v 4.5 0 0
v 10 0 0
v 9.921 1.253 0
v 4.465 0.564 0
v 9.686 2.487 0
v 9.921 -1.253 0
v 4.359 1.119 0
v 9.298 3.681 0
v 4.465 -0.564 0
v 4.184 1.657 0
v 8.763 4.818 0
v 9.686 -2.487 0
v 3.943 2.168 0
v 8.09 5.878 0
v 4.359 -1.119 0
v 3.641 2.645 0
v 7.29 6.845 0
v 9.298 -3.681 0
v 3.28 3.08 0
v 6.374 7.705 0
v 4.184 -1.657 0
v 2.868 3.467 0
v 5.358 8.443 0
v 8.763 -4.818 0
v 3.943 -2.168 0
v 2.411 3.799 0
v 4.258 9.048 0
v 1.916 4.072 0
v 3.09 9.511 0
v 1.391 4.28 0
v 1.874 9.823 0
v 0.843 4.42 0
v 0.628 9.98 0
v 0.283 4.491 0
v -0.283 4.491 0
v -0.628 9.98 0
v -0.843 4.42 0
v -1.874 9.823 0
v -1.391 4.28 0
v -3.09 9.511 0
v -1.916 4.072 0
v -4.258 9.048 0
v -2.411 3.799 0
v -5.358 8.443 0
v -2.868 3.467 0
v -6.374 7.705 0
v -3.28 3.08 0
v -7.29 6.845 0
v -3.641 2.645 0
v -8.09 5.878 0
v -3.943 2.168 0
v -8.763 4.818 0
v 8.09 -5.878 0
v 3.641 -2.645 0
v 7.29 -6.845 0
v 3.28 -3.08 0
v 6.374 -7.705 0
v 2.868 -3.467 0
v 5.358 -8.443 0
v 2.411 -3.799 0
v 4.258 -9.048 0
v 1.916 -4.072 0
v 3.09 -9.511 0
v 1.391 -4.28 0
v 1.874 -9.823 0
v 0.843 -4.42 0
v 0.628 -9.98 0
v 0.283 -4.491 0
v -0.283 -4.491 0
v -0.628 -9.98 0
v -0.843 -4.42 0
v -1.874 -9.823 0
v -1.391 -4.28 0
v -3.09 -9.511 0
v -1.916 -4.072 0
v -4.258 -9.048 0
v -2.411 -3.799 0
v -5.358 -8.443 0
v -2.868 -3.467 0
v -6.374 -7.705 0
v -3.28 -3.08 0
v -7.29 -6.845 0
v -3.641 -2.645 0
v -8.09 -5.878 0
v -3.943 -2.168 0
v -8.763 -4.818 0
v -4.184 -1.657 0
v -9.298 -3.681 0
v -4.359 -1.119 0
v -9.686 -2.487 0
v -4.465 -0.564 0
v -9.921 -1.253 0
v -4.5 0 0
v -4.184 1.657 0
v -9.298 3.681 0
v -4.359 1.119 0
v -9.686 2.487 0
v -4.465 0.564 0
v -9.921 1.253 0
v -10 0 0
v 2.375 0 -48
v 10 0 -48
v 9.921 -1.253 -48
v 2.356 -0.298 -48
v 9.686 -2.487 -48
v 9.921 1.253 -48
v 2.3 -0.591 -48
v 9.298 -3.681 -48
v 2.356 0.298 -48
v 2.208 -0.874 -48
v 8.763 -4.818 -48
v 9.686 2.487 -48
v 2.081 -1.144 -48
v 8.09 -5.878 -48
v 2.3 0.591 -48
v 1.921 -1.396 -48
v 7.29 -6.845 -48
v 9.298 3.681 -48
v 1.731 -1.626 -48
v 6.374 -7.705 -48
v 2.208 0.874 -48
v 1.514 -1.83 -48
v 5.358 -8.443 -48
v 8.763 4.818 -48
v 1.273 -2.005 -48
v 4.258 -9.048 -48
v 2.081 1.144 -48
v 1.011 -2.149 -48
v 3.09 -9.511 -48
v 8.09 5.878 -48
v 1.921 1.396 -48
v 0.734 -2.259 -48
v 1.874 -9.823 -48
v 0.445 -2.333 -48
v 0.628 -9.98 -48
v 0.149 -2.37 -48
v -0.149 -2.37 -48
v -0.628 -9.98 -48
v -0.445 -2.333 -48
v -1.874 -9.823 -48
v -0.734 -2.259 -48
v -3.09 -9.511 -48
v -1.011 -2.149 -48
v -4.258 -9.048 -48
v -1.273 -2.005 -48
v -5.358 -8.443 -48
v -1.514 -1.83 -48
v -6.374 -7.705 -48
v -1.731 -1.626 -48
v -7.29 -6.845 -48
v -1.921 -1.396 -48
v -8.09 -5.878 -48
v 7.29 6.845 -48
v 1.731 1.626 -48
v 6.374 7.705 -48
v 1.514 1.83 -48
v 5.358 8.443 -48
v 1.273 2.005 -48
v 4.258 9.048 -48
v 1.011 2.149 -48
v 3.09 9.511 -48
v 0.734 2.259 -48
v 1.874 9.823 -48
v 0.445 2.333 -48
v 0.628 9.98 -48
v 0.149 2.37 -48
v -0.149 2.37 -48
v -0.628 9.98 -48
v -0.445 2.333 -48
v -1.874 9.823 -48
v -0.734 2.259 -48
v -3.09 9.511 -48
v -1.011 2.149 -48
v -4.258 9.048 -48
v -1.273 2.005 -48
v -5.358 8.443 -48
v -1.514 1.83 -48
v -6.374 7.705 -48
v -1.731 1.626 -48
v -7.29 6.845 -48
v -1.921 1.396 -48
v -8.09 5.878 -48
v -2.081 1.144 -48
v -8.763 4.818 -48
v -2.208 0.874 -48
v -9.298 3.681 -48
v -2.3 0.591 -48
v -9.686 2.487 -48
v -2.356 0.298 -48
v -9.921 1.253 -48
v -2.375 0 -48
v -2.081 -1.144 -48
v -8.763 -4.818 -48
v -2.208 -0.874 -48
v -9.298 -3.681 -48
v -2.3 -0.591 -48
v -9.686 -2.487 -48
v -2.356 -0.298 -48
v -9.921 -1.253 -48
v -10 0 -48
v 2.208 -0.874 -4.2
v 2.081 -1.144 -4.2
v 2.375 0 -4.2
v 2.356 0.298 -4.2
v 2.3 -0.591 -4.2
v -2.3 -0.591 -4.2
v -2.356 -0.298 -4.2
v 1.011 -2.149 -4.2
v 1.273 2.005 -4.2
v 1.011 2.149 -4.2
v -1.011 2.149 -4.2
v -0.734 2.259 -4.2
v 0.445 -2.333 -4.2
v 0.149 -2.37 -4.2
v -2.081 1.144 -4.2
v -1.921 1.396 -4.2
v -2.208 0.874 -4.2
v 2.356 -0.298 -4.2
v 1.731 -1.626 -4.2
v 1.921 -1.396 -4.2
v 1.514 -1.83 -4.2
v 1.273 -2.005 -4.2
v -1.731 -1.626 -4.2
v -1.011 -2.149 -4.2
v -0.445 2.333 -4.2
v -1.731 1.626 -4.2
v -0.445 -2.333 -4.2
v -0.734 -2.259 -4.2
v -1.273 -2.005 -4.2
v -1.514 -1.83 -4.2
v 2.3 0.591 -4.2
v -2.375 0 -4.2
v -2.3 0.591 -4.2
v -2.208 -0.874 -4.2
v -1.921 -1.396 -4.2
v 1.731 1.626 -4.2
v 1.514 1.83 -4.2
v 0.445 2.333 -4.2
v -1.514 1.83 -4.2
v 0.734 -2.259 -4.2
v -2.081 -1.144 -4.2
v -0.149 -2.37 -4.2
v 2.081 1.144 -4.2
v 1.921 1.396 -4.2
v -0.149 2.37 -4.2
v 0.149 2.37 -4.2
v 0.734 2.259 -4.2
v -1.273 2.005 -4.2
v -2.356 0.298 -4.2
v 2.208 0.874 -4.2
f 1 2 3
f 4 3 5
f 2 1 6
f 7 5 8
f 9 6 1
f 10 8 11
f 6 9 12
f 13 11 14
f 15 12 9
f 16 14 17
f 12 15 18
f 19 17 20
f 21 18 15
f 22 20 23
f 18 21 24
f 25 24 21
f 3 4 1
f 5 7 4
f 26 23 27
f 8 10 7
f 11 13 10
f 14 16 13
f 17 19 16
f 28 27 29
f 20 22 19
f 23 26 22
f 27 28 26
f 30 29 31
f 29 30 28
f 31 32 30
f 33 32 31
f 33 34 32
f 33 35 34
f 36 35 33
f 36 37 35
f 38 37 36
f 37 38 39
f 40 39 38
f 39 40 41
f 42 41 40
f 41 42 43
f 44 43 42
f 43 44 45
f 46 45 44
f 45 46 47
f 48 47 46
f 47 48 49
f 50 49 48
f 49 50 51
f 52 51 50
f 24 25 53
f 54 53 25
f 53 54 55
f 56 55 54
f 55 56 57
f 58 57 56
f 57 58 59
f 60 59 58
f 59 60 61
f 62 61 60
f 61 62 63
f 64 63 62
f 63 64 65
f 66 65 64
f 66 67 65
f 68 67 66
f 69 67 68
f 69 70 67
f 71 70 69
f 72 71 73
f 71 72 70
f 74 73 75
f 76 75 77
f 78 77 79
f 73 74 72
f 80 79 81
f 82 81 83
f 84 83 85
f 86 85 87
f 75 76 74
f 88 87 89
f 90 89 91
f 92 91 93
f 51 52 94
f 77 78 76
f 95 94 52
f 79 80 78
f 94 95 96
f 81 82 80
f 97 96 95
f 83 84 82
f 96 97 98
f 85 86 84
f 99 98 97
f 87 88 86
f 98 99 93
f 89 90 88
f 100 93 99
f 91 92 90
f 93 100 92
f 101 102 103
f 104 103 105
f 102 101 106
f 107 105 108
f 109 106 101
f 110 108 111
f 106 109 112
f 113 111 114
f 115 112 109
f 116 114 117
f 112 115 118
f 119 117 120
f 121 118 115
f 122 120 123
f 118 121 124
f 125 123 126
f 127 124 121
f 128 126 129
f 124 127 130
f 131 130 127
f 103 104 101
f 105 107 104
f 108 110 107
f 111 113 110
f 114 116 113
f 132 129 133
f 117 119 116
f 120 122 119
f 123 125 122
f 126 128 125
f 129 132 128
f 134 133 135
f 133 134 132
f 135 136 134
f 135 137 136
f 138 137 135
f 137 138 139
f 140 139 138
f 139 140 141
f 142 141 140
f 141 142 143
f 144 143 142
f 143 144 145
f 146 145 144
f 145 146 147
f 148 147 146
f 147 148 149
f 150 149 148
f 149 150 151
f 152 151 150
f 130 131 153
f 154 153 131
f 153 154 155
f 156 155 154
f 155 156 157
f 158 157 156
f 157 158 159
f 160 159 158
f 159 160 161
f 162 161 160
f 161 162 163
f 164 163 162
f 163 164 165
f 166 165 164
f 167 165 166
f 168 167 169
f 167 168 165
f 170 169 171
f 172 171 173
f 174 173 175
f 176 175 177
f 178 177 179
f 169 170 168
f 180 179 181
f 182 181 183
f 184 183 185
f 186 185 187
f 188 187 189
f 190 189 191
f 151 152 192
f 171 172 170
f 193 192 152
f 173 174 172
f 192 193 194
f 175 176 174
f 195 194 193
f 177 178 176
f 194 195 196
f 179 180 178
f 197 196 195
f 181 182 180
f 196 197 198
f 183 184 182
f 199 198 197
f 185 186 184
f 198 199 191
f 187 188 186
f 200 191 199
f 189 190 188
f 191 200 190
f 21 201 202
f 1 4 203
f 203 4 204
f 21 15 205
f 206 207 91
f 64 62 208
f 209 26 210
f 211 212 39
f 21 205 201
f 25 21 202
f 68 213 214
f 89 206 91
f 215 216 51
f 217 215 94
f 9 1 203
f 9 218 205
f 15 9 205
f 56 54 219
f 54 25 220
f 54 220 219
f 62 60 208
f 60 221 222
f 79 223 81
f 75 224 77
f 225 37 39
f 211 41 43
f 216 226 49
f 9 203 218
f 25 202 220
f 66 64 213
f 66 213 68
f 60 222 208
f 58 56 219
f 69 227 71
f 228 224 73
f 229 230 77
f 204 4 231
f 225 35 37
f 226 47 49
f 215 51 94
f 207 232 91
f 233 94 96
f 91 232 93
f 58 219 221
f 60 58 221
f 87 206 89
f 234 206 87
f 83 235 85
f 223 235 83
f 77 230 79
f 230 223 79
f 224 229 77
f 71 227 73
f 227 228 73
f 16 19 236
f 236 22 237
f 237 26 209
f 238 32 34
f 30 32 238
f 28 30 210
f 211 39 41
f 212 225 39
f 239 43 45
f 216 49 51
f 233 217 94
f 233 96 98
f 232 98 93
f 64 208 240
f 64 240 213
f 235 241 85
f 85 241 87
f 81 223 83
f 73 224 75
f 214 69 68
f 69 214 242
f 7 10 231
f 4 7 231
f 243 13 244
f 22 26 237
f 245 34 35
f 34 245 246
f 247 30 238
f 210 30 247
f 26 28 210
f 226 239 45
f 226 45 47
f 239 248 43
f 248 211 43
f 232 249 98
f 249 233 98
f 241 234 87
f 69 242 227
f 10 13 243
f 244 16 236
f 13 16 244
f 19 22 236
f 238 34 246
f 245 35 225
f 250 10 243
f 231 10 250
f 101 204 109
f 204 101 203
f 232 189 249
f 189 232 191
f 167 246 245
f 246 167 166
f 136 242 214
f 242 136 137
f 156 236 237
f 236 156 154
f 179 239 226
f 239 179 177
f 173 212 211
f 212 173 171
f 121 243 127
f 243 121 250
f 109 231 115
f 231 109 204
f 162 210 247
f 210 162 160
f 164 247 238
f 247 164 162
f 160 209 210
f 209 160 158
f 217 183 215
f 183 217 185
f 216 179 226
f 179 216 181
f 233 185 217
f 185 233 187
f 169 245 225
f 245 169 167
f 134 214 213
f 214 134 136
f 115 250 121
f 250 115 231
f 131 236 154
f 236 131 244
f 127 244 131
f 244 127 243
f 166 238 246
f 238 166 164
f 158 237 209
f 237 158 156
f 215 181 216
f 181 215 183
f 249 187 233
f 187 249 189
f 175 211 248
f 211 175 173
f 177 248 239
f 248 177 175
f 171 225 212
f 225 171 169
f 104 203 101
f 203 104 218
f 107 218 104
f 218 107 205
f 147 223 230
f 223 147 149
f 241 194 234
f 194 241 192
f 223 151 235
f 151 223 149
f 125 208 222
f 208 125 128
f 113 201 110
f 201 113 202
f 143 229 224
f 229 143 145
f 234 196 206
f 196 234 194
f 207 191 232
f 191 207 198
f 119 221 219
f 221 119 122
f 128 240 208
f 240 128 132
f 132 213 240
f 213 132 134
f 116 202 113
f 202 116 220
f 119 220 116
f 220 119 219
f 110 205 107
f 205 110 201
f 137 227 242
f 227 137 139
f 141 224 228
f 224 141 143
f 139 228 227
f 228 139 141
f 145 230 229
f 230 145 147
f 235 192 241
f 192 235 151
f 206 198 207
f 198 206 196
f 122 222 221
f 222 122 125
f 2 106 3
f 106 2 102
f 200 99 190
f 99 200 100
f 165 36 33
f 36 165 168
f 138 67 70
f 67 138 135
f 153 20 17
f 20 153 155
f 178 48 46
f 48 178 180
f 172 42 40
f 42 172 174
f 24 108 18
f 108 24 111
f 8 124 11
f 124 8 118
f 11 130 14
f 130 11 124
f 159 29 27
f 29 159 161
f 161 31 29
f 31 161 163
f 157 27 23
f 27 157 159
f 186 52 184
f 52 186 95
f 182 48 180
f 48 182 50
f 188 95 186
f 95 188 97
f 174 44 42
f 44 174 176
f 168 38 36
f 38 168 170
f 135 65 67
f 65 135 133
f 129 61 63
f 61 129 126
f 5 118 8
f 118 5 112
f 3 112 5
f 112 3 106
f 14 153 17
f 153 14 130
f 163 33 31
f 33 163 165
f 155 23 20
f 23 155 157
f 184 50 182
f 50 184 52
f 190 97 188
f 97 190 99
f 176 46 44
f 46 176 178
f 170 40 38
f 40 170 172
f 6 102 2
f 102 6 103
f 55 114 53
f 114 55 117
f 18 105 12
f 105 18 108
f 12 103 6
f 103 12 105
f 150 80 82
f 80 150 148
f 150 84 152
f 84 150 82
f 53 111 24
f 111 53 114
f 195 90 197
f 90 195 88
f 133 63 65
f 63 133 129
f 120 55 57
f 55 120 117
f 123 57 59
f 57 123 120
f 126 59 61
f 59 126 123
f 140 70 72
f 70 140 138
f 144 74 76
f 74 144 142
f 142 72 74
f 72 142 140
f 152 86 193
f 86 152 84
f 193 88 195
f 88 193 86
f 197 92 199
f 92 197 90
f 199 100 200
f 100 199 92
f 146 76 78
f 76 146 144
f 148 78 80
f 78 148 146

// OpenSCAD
$fn = 50;


difference() {
	union() {
		translate(v = [0, 0, -48.0000000000]) {
			cylinder(h = 48, r = 10.0000000000);
		}
	}
	union() {
		translate(v = [0, 0, 0]) {
			rotate(a = [0, 0, 0]) {
				difference() {
					union() {
						#translate(v = [0, 0, -48.0000000000]) {
							cylinder(h = 48, r = 2.2500000000);
						}
						#translate(v = [0, 0, -4.2000000000]) {
							cylinder(h = 4.2000000000, r1 = 2.3750000000, r2 = 4.5000000000);
						}
						#translate(v = [0, 0, -48.0000000000]) {
							cylinder(h = 48, r = 2.3750000000);
						}
						#translate(v = [0, 0, -48.0000000000]) {
							cylinder(h = 48, r = 2.2500000000);
						}
					}
					union();
				}
			}
		}
	}
}
